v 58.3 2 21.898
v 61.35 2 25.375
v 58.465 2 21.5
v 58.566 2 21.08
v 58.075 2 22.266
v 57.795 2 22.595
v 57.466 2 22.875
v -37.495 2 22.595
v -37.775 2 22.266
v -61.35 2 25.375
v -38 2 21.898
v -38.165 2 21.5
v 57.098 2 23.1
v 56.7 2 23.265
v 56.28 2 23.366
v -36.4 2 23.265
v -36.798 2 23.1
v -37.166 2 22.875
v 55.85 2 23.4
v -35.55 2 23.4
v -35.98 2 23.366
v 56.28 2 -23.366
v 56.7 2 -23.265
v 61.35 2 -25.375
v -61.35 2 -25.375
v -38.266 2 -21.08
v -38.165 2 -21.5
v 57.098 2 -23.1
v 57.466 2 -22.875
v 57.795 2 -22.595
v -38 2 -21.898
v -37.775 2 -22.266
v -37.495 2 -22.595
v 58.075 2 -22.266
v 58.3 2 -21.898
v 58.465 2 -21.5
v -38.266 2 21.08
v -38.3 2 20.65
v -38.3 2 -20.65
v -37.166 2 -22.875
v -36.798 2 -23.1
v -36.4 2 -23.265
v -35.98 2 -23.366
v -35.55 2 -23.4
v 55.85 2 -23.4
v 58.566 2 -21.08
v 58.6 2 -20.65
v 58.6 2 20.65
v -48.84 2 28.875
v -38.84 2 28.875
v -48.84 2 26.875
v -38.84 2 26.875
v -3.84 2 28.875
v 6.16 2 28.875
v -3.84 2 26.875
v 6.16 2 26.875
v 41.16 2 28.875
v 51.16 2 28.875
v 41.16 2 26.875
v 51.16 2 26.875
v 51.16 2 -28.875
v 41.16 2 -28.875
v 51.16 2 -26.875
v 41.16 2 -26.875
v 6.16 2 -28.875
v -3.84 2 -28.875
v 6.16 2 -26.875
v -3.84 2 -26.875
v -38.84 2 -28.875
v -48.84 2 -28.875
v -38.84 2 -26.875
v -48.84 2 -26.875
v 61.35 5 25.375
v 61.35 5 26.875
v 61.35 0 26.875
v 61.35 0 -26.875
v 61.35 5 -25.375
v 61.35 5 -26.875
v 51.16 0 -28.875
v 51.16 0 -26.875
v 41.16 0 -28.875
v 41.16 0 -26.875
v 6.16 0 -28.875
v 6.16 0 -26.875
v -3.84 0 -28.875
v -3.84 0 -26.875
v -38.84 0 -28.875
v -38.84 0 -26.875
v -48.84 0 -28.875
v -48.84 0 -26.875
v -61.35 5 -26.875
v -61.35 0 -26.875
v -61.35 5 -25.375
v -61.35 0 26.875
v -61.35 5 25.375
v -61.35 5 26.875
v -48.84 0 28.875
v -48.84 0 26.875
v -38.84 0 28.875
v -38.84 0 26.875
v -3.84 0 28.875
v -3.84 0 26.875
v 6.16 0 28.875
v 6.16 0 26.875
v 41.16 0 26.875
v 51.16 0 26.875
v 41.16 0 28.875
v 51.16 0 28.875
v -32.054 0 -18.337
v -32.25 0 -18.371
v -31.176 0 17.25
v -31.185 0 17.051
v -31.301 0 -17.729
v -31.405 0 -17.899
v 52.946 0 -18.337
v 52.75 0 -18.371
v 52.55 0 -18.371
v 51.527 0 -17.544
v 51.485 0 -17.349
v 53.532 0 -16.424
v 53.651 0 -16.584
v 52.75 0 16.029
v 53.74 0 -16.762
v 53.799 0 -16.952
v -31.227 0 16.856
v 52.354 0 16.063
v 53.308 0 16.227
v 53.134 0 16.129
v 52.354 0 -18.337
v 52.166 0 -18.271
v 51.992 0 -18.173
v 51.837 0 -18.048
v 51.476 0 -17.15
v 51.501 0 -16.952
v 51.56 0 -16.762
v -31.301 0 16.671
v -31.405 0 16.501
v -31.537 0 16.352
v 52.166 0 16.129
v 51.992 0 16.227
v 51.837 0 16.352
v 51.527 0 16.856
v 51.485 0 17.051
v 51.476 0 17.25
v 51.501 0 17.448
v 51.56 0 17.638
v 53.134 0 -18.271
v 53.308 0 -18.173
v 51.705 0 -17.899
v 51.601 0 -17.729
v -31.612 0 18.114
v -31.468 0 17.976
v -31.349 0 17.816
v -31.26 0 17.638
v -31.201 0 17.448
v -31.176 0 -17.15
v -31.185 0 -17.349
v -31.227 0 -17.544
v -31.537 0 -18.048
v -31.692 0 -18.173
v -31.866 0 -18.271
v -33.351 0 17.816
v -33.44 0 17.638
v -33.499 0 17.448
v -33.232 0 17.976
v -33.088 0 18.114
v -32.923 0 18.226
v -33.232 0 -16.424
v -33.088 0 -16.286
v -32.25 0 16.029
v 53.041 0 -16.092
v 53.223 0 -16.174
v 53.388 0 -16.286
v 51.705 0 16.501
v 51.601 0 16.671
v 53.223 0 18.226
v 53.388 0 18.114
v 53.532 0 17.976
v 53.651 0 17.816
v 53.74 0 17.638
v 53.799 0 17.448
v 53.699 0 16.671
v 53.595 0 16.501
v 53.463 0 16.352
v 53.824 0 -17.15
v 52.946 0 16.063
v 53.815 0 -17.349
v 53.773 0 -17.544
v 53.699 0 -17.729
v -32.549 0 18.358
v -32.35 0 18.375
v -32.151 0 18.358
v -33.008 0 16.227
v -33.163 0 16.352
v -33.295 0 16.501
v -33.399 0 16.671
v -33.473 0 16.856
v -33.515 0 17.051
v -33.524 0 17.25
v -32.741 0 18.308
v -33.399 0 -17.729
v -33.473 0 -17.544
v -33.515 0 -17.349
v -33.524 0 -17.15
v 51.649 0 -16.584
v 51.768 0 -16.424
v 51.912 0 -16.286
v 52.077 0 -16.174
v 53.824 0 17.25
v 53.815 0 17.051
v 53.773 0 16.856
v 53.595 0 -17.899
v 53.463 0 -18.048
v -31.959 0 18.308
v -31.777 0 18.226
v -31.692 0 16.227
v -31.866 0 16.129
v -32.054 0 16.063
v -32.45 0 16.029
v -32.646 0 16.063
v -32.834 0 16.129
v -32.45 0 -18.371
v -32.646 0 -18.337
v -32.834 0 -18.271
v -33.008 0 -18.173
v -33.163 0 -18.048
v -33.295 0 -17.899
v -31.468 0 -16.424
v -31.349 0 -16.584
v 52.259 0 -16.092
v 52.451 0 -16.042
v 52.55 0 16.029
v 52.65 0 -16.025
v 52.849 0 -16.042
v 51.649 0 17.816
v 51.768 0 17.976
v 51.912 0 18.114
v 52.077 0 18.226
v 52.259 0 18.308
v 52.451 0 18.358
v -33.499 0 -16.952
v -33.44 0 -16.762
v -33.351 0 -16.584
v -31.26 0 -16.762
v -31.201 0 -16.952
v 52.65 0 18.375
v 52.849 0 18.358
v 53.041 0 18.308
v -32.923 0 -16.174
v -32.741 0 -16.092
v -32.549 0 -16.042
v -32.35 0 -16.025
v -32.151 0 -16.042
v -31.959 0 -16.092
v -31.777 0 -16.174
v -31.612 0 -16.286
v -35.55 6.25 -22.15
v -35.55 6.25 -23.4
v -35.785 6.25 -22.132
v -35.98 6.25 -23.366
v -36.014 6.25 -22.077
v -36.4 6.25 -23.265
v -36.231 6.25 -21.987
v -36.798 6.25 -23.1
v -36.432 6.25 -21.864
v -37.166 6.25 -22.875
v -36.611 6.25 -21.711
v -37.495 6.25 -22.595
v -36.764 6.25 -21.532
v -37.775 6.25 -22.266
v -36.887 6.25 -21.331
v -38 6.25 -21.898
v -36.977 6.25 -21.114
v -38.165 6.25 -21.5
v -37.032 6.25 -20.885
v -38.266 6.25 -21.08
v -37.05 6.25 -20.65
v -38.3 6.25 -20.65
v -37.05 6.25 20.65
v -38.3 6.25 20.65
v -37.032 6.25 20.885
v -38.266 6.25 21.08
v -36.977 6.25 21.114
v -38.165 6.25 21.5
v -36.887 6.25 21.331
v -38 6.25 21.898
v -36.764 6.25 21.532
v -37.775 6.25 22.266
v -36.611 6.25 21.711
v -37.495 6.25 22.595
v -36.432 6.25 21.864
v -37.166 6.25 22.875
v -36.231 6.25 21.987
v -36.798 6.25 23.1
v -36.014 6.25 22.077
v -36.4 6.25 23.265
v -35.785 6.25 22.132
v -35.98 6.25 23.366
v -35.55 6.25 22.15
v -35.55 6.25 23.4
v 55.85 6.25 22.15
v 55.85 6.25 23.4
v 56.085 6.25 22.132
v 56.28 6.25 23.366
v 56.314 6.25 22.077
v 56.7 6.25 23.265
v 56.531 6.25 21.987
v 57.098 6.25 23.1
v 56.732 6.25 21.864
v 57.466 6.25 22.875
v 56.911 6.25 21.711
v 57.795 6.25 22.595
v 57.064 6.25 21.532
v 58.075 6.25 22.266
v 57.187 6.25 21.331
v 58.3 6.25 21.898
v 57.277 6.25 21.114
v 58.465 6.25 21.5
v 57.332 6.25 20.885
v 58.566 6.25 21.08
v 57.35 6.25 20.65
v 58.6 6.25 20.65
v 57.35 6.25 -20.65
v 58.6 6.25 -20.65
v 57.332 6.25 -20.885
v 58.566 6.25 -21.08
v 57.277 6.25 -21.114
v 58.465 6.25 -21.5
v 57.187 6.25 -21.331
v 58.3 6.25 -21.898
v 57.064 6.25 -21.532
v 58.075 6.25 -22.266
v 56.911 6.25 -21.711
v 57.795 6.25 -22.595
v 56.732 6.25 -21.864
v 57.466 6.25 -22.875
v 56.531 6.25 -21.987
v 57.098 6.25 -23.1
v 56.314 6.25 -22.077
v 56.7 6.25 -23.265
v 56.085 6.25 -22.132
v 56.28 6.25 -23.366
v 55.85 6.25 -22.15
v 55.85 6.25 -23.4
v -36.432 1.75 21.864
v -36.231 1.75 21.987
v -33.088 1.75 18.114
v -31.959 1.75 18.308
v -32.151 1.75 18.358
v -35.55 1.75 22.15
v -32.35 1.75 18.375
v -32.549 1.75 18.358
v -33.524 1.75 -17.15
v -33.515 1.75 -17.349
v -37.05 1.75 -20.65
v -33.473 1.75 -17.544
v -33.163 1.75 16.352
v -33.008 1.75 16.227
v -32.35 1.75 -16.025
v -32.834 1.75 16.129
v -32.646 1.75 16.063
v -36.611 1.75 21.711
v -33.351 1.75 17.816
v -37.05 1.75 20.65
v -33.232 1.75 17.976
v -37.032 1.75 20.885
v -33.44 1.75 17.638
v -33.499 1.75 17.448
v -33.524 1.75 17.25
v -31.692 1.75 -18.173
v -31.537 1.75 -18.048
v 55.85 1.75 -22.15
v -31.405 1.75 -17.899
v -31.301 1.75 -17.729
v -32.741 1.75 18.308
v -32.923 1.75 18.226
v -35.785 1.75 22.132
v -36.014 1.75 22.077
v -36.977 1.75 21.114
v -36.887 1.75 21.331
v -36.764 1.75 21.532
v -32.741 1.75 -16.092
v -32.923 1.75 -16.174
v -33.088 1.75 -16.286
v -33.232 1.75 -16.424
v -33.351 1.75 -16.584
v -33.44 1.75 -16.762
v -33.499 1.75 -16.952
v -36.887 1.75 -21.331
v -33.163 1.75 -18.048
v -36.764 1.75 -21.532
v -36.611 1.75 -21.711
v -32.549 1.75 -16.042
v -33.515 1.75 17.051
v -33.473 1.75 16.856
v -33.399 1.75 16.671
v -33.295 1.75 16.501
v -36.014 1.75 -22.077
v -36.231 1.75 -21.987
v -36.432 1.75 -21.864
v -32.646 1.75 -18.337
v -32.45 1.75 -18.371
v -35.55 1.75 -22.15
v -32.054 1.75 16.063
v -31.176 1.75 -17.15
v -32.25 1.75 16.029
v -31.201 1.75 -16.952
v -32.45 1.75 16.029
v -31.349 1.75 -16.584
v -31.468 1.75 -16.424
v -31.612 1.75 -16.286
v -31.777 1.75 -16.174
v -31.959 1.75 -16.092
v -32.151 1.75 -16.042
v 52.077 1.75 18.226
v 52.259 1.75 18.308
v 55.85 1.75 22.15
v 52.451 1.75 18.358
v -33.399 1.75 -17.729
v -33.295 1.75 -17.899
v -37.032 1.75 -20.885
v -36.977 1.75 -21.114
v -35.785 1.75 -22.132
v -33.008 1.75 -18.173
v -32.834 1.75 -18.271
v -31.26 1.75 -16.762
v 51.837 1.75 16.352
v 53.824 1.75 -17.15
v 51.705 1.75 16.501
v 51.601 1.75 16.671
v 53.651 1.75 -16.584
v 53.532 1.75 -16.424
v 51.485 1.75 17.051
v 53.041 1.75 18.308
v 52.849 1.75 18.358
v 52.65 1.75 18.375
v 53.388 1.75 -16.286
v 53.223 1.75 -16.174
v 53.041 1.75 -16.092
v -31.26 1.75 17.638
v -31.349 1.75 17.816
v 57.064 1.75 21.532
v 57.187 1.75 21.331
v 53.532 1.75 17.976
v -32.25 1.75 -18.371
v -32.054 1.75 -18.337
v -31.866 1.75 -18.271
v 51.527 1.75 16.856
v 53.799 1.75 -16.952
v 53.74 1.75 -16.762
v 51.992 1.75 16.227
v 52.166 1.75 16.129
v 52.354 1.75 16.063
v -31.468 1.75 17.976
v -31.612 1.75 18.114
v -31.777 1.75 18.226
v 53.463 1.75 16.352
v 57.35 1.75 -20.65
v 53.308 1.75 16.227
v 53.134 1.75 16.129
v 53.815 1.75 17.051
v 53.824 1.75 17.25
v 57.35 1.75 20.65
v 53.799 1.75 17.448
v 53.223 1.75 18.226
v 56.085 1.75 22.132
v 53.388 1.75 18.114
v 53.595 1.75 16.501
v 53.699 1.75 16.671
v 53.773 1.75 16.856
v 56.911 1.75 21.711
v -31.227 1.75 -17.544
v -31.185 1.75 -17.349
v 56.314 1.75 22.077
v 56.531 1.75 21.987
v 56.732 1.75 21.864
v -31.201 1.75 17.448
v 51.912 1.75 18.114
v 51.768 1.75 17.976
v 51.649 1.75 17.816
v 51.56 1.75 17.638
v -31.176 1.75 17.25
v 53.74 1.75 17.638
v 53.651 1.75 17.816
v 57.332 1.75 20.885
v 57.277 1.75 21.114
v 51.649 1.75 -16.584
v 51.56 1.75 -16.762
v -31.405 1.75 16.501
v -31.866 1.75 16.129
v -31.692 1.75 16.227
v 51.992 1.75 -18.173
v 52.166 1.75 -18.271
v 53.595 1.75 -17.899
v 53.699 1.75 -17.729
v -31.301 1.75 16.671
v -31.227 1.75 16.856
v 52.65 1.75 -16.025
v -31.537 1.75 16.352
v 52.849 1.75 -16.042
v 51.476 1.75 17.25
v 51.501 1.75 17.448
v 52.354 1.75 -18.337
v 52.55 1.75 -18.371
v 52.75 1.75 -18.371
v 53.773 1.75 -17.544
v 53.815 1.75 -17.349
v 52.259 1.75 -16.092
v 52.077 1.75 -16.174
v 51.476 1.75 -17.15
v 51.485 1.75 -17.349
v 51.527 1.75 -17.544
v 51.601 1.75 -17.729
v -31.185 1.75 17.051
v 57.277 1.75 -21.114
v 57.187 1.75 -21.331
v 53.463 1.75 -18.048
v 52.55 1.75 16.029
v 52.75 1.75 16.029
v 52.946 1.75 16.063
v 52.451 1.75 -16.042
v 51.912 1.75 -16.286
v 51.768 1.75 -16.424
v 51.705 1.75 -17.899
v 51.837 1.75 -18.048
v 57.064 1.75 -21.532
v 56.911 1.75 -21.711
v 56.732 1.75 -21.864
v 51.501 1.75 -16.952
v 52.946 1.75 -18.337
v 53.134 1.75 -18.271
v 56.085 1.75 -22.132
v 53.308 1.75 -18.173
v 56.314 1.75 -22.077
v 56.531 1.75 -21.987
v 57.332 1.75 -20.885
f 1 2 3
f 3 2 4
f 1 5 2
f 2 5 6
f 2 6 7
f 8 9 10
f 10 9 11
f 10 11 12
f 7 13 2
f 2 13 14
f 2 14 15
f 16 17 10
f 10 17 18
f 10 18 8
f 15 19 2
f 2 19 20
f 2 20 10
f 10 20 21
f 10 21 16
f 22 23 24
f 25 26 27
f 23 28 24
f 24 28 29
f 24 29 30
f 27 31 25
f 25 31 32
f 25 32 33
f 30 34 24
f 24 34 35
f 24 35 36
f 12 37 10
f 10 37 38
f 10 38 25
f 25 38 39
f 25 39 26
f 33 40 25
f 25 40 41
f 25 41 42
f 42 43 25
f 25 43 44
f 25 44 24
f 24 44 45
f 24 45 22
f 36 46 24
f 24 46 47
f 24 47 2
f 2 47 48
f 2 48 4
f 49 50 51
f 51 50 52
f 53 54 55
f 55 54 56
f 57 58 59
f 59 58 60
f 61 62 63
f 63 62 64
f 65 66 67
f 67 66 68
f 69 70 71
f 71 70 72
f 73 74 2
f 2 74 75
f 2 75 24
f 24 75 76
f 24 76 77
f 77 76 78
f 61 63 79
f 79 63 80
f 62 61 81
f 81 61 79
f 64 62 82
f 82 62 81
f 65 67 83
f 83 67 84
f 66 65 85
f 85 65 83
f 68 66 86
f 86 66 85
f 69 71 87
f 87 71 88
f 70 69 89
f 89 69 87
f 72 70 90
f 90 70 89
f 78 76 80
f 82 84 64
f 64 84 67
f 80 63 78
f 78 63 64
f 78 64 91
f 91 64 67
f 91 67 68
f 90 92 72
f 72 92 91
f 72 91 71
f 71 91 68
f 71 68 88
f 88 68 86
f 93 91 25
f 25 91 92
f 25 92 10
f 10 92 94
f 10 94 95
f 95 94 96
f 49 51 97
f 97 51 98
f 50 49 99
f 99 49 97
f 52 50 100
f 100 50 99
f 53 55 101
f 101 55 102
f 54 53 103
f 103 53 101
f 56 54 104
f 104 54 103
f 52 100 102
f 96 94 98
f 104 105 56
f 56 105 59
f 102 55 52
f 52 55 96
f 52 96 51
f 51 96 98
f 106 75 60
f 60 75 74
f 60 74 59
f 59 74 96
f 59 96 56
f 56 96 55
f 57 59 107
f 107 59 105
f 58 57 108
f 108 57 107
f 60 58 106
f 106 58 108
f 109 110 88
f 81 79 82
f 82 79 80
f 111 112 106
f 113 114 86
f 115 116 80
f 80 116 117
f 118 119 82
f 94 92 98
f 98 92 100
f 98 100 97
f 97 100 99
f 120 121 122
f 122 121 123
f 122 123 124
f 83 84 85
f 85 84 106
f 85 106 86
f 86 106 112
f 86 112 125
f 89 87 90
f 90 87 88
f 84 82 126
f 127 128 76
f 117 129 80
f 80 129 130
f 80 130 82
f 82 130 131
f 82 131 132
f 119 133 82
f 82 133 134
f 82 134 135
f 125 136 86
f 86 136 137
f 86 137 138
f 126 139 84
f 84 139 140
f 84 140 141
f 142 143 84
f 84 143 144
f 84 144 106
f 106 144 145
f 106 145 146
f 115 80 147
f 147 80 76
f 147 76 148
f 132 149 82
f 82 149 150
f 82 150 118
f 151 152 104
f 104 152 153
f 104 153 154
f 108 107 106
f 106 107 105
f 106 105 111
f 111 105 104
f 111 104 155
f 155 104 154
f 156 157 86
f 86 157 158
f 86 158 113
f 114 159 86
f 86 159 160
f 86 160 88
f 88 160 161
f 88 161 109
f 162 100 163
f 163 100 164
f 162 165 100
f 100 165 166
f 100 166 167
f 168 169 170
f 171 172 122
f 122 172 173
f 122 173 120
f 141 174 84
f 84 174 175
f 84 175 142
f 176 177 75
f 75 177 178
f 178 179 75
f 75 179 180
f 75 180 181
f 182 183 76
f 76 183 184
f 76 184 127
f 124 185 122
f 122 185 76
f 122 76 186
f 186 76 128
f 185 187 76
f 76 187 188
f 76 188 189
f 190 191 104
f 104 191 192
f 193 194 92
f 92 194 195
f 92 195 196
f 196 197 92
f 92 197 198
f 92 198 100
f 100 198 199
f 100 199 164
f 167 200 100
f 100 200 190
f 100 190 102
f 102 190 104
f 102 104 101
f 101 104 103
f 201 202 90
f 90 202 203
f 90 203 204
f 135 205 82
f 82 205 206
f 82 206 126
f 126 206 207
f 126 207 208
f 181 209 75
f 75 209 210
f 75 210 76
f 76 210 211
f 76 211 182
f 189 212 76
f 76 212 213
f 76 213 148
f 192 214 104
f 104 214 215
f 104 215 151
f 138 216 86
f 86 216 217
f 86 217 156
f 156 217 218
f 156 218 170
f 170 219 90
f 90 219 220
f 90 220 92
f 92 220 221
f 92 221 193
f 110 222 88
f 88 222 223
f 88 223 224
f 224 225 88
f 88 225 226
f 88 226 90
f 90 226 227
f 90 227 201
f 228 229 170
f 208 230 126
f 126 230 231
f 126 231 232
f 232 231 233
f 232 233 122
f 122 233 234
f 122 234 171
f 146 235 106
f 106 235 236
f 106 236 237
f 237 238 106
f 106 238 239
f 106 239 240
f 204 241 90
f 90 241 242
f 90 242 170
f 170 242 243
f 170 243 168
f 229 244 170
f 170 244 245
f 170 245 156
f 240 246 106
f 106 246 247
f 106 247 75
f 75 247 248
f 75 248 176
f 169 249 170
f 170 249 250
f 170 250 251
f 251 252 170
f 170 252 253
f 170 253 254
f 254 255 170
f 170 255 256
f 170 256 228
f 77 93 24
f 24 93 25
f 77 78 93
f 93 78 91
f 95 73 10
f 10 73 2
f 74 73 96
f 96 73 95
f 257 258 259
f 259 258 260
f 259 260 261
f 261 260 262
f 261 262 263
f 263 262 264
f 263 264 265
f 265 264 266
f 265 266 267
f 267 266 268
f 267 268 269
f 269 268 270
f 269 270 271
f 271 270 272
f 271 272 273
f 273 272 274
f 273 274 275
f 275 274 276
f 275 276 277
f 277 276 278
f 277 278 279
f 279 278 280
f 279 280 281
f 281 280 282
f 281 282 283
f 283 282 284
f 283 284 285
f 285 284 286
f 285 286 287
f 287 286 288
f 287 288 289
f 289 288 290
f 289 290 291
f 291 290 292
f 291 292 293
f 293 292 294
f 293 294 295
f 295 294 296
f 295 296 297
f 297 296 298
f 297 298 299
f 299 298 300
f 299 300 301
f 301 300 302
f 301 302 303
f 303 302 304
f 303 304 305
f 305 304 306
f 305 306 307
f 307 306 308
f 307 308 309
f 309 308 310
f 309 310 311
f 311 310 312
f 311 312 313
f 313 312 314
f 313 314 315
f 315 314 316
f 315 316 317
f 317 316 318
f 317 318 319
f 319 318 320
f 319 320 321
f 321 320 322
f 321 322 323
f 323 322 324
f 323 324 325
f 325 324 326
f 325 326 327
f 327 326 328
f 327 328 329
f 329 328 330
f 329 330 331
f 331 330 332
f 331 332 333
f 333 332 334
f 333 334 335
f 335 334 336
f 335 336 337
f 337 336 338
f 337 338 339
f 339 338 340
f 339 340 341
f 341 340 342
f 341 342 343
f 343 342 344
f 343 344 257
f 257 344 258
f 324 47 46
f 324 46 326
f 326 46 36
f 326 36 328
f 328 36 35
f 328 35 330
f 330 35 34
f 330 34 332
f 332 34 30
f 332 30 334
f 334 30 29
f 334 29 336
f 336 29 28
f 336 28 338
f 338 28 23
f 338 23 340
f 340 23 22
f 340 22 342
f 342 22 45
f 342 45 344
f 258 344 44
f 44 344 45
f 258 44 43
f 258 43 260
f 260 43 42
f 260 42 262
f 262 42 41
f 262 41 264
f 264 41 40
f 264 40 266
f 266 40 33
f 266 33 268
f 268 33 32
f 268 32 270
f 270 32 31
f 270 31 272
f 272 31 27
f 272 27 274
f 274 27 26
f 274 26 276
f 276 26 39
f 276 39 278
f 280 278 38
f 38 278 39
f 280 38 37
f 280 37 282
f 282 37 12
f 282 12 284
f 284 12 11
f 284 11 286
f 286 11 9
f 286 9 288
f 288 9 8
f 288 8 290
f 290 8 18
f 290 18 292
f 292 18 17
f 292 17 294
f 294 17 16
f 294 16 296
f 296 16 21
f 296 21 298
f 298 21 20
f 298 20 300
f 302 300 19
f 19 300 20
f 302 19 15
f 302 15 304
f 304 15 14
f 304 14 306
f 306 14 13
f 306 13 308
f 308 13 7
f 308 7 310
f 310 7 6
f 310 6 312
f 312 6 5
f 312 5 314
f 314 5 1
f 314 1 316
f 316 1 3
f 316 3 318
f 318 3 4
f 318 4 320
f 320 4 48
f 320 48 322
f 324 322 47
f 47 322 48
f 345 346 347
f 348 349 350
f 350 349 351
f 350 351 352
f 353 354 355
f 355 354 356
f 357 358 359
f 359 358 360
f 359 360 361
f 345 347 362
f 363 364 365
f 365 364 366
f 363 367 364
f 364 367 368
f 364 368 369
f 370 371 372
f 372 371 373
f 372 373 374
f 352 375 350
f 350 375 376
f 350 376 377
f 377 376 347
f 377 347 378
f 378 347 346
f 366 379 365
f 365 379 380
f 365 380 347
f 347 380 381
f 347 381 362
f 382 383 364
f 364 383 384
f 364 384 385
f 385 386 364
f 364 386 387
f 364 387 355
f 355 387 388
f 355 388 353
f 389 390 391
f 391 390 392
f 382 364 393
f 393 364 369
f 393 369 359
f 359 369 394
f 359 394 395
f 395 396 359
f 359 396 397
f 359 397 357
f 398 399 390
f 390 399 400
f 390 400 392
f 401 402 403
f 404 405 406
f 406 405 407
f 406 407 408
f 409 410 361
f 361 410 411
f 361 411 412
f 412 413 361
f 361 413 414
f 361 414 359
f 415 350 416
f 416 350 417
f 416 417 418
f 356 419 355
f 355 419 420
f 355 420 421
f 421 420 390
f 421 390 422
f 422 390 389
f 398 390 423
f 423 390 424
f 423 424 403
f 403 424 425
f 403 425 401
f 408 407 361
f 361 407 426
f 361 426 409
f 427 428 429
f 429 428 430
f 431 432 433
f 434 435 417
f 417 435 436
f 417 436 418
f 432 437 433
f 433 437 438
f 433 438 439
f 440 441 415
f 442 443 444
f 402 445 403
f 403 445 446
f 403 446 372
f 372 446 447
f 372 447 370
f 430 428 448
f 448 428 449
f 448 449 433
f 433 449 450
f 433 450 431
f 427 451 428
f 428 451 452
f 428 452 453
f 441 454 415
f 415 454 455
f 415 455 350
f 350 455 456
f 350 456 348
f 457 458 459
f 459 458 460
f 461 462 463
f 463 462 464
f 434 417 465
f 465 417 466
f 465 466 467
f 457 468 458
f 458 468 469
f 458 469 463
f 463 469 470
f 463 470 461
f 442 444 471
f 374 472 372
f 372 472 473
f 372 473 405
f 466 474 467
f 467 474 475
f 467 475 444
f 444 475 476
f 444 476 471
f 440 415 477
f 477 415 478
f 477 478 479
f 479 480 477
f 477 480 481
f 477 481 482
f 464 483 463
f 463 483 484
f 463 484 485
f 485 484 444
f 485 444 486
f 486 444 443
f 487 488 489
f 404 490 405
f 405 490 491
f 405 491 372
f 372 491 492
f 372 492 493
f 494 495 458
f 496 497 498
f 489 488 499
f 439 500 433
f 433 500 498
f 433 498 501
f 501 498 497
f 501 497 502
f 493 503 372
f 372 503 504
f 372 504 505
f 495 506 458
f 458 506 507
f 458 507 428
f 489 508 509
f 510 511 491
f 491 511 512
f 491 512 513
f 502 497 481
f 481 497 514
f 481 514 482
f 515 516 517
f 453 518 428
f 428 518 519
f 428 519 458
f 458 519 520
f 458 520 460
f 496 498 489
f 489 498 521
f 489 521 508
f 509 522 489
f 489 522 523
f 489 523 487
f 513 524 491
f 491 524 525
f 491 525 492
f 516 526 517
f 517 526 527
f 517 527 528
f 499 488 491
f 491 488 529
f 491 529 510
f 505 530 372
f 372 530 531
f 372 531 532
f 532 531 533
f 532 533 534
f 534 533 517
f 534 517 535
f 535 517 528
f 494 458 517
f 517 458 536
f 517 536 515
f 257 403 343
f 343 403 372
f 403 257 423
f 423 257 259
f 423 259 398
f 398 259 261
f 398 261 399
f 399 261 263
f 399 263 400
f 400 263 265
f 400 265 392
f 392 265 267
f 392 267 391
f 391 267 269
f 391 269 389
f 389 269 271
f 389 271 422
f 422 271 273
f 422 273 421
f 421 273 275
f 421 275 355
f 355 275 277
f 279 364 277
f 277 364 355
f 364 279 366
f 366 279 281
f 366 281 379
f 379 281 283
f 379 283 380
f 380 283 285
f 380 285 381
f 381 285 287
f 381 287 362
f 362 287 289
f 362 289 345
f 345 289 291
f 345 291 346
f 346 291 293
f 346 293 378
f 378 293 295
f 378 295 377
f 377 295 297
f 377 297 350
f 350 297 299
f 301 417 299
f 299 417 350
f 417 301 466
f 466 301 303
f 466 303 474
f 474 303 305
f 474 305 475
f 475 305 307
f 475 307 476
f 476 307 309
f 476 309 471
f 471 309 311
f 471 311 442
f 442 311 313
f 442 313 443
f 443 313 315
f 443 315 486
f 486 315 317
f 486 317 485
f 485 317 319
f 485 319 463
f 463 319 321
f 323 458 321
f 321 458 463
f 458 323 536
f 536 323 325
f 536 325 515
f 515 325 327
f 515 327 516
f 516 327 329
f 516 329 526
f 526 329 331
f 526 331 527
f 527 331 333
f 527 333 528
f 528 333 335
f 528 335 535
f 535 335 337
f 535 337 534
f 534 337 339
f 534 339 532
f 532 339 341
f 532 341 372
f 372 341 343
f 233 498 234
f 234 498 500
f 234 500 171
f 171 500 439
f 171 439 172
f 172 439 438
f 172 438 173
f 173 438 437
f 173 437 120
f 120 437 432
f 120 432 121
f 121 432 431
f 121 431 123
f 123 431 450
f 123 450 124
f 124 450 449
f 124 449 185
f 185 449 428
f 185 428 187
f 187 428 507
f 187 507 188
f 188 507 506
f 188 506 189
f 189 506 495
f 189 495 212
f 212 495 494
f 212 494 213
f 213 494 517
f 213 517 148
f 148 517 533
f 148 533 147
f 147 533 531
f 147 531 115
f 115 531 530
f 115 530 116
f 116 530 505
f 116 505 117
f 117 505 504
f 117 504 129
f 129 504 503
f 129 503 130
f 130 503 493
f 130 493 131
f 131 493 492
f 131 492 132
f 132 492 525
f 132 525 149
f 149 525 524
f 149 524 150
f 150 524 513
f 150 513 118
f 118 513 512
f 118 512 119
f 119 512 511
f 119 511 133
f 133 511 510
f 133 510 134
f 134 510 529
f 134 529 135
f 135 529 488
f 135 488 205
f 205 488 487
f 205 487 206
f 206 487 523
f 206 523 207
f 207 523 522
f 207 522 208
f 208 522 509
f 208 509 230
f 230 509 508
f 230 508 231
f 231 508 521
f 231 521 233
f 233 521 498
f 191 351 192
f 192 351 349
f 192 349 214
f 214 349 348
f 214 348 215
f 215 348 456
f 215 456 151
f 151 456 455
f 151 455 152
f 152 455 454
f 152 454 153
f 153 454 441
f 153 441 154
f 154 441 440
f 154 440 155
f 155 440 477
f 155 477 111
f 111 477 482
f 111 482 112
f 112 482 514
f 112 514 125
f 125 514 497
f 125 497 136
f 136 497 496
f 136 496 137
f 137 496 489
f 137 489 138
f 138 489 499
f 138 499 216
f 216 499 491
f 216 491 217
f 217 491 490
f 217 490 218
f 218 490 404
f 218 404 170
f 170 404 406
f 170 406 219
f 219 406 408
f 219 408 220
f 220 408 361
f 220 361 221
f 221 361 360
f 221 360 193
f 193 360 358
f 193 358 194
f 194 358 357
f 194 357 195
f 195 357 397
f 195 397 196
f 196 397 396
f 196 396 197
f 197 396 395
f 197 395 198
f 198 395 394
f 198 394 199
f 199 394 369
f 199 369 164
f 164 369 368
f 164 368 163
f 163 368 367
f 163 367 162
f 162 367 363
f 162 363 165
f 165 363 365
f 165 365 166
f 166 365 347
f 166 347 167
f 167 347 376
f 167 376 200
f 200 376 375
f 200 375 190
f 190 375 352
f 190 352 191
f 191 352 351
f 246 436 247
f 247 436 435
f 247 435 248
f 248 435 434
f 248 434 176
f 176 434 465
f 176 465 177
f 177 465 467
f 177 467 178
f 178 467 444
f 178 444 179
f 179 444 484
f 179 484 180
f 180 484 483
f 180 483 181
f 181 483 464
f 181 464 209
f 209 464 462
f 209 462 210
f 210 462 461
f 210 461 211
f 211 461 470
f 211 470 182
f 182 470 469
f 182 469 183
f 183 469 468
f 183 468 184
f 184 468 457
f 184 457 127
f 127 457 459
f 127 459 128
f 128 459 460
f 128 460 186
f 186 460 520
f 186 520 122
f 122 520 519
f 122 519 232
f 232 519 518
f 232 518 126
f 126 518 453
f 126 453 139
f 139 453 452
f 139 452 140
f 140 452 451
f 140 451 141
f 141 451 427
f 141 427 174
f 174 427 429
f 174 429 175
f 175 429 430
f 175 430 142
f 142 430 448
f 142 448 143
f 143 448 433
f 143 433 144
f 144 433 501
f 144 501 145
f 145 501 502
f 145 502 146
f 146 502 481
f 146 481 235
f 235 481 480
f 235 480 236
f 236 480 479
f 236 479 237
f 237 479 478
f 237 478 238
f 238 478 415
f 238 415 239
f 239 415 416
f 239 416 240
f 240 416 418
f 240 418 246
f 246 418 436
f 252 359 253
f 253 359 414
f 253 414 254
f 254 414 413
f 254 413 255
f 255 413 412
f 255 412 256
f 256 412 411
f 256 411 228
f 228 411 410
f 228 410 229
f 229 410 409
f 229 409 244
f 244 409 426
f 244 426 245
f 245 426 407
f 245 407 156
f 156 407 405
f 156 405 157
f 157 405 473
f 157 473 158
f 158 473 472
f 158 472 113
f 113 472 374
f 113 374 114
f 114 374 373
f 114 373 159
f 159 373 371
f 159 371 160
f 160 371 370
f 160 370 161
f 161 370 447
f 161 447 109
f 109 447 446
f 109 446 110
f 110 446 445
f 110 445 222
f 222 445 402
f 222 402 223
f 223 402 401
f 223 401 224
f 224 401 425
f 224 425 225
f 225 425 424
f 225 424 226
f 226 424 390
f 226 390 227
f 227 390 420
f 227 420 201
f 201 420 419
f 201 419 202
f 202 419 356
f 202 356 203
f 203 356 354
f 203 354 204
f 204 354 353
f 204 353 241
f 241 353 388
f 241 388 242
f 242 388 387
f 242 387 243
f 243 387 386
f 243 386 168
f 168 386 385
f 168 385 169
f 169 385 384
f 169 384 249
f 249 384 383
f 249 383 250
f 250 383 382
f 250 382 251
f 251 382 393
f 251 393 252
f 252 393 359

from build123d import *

# Parameters (mm, degrees)
BOSS_EXTRUDE1_DEPTH = 2
SKETCH2_W           = 122.7
SKETCH2_H           = 1.5
BOSS_EXTRUDE2_DEPTH = 3
CUT_EXTRUDE1_DEPTH  = 0.25
BOSS_EXTRUDE3_START = 4.25
BOSS_EXTRUDE3_DEPTH = 4.25
SKETCH5_R           = 1.175
CUT_EXTRUDE2_DEPTH  = 68.954676991


with BuildPart() as part:
    # Sketch1 → Boss-Extrude1 (new body)
    with BuildSketch(Plane(origin=(0, 0, 0), x_dir=(1, 0, 0), z_dir=(0, 1, 0))):
        Polygon((-61.35, 26.875), (-48.84, 26.875), (-48.84, 28.875), (-38.84, 28.875), (-38.84, 26.875), (-3.84, 26.875), (-3.84, 28.875), (6.16, 28.875), (6.16, 26.875), (41.16, 26.875), (41.16, 28.875), (51.16, 28.875), (51.16, 26.875), (61.35, 26.875), (61.35, -26.875), (51.16, -26.875), (51.16, -28.875), (41.16, -28.875), (41.16, -26.875), (6.16, -26.875), (6.16, -28.875), (-3.84, -28.875), (-3.84, -26.875), (-38.84, -26.875), (-38.84, -28.875), (-48.84, -28.875), (-48.84, -26.875), (-61.35, -26.875), align=None)
    extrude(amount=BOSS_EXTRUDE1_DEPTH)

    # Sketch2 → Boss-Extrude2 (add)
    with BuildSketch(Plane(origin=(0, 2, 0), x_dir=(1, 0, 0), z_dir=(0, 1, 0))):
        with Locations((0, 26.125)):
            Rectangle(SKETCH2_W, SKETCH2_H)
        with Locations((0, -26.125)):
            Rectangle(SKETCH2_W, SKETCH2_H)
    extrude(amount=BOSS_EXTRUDE2_DEPTH)

    # Sketch3 → Cut-Extrude1 (cut)
    with BuildSketch(Plane(origin=(0, 2, 0), x_dir=(1, 0, 0), z_dir=(0, 1, 0))):
        with BuildLine():
            Line((-35.55, 22.15), (55.85, 22.15))
            ThreePointArc((55.85, 22.15), (56.910660172, 21.710660172), (57.35, 20.65))
            Line((57.35, 20.65), (57.35, -20.65))
            ThreePointArc((57.35, -20.65), (56.910660172, -21.710660172), (55.85, -22.15))
            Line((55.85, -22.15), (-35.55, -22.15))
            ThreePointArc((-35.55, -22.15), (-36.610660172, -21.710660172), (-37.05, -20.65))
            Line((-37.05, -20.65), (-37.05, 20.65))
            ThreePointArc((-37.05, 20.65), (-36.610660172, 21.710660172), (-35.55, 22.15))
        make_face()
    extrude(amount=-CUT_EXTRUDE1_DEPTH, mode=Mode.SUBTRACT)

    # Sketch4 → Boss-Extrude3 (add)
    with BuildSketch(Plane(origin=(0, 2, 0), x_dir=(1, 0, 0), z_dir=(0, 1, 0)).offset(BOSS_EXTRUDE3_START)):
        with BuildLine():
            Line((55.85, 23.4), (-35.55, 23.4))
            ThreePointArc((-35.55, 23.4), (-37.494543648, 22.594543648), (-38.3, 20.65))
            Line((-38.3, 20.65), (-38.3, -20.65))
            ThreePointArc((-38.3, -20.65), (-37.494543648, -22.594543648), (-35.55, -23.4))
            Line((-35.55, -23.4), (55.85, -23.4))
            ThreePointArc((55.85, -23.4), (57.794543648, -22.594543648), (58.6, -20.65))
            Line((58.6, -20.65), (58.6, 20.65))
            ThreePointArc((58.6, 20.65), (57.794543648, 22.594543648), (55.85, 23.4))
        make_face()
        with BuildLine():
            Line((55.85, 22.15), (-35.55, 22.15))
            ThreePointArc((-35.55, 22.15), (-36.610660172, 21.710660172), (-37.05, 20.65))
            Line((-37.05, 20.65), (-37.05, -20.65))
            ThreePointArc((-37.05, -20.65), (-36.610660172, -21.710660172), (-35.55, -22.15))
            Line((-35.55, -22.15), (55.85, -22.15))
            ThreePointArc((55.85, -22.15), (56.910660172, -21.710660172), (57.35, -20.65))
            Line((57.35, -20.65), (57.35, 20.65))
            ThreePointArc((57.35, 20.65), (56.910660172, 21.710660172), (55.85, 22.15))
        make_face(mode=Mode.SUBTRACT)
    extrude(amount=-BOSS_EXTRUDE3_DEPTH)

    # Sketch5 → Cut-Extrude2 (cut, through all)
    with BuildSketch(Plane(origin=(0, 1.75, 0), x_dir=(1, 0, 0), z_dir=(0, 1, 0))):
        with Locations(Location((-32.35, 17.2, 0), (0, 0, 270))):
            Circle(SKETCH5_R)
        with Locations(Location((52.65, 17.2, 0), (0, 0, 270))):
            Circle(SKETCH5_R)
        with Locations(Location((52.65, -17.2, 0), (0, 0, 270))):
            Circle(SKETCH5_R)
        with Locations(Location((-32.35, -17.2, 0), (0, 0, 270))):
            Circle(SKETCH5_R)
    extrude(amount=-CUT_EXTRUDE2_DEPTH, mode=Mode.SUBTRACT)


solid = part.part
